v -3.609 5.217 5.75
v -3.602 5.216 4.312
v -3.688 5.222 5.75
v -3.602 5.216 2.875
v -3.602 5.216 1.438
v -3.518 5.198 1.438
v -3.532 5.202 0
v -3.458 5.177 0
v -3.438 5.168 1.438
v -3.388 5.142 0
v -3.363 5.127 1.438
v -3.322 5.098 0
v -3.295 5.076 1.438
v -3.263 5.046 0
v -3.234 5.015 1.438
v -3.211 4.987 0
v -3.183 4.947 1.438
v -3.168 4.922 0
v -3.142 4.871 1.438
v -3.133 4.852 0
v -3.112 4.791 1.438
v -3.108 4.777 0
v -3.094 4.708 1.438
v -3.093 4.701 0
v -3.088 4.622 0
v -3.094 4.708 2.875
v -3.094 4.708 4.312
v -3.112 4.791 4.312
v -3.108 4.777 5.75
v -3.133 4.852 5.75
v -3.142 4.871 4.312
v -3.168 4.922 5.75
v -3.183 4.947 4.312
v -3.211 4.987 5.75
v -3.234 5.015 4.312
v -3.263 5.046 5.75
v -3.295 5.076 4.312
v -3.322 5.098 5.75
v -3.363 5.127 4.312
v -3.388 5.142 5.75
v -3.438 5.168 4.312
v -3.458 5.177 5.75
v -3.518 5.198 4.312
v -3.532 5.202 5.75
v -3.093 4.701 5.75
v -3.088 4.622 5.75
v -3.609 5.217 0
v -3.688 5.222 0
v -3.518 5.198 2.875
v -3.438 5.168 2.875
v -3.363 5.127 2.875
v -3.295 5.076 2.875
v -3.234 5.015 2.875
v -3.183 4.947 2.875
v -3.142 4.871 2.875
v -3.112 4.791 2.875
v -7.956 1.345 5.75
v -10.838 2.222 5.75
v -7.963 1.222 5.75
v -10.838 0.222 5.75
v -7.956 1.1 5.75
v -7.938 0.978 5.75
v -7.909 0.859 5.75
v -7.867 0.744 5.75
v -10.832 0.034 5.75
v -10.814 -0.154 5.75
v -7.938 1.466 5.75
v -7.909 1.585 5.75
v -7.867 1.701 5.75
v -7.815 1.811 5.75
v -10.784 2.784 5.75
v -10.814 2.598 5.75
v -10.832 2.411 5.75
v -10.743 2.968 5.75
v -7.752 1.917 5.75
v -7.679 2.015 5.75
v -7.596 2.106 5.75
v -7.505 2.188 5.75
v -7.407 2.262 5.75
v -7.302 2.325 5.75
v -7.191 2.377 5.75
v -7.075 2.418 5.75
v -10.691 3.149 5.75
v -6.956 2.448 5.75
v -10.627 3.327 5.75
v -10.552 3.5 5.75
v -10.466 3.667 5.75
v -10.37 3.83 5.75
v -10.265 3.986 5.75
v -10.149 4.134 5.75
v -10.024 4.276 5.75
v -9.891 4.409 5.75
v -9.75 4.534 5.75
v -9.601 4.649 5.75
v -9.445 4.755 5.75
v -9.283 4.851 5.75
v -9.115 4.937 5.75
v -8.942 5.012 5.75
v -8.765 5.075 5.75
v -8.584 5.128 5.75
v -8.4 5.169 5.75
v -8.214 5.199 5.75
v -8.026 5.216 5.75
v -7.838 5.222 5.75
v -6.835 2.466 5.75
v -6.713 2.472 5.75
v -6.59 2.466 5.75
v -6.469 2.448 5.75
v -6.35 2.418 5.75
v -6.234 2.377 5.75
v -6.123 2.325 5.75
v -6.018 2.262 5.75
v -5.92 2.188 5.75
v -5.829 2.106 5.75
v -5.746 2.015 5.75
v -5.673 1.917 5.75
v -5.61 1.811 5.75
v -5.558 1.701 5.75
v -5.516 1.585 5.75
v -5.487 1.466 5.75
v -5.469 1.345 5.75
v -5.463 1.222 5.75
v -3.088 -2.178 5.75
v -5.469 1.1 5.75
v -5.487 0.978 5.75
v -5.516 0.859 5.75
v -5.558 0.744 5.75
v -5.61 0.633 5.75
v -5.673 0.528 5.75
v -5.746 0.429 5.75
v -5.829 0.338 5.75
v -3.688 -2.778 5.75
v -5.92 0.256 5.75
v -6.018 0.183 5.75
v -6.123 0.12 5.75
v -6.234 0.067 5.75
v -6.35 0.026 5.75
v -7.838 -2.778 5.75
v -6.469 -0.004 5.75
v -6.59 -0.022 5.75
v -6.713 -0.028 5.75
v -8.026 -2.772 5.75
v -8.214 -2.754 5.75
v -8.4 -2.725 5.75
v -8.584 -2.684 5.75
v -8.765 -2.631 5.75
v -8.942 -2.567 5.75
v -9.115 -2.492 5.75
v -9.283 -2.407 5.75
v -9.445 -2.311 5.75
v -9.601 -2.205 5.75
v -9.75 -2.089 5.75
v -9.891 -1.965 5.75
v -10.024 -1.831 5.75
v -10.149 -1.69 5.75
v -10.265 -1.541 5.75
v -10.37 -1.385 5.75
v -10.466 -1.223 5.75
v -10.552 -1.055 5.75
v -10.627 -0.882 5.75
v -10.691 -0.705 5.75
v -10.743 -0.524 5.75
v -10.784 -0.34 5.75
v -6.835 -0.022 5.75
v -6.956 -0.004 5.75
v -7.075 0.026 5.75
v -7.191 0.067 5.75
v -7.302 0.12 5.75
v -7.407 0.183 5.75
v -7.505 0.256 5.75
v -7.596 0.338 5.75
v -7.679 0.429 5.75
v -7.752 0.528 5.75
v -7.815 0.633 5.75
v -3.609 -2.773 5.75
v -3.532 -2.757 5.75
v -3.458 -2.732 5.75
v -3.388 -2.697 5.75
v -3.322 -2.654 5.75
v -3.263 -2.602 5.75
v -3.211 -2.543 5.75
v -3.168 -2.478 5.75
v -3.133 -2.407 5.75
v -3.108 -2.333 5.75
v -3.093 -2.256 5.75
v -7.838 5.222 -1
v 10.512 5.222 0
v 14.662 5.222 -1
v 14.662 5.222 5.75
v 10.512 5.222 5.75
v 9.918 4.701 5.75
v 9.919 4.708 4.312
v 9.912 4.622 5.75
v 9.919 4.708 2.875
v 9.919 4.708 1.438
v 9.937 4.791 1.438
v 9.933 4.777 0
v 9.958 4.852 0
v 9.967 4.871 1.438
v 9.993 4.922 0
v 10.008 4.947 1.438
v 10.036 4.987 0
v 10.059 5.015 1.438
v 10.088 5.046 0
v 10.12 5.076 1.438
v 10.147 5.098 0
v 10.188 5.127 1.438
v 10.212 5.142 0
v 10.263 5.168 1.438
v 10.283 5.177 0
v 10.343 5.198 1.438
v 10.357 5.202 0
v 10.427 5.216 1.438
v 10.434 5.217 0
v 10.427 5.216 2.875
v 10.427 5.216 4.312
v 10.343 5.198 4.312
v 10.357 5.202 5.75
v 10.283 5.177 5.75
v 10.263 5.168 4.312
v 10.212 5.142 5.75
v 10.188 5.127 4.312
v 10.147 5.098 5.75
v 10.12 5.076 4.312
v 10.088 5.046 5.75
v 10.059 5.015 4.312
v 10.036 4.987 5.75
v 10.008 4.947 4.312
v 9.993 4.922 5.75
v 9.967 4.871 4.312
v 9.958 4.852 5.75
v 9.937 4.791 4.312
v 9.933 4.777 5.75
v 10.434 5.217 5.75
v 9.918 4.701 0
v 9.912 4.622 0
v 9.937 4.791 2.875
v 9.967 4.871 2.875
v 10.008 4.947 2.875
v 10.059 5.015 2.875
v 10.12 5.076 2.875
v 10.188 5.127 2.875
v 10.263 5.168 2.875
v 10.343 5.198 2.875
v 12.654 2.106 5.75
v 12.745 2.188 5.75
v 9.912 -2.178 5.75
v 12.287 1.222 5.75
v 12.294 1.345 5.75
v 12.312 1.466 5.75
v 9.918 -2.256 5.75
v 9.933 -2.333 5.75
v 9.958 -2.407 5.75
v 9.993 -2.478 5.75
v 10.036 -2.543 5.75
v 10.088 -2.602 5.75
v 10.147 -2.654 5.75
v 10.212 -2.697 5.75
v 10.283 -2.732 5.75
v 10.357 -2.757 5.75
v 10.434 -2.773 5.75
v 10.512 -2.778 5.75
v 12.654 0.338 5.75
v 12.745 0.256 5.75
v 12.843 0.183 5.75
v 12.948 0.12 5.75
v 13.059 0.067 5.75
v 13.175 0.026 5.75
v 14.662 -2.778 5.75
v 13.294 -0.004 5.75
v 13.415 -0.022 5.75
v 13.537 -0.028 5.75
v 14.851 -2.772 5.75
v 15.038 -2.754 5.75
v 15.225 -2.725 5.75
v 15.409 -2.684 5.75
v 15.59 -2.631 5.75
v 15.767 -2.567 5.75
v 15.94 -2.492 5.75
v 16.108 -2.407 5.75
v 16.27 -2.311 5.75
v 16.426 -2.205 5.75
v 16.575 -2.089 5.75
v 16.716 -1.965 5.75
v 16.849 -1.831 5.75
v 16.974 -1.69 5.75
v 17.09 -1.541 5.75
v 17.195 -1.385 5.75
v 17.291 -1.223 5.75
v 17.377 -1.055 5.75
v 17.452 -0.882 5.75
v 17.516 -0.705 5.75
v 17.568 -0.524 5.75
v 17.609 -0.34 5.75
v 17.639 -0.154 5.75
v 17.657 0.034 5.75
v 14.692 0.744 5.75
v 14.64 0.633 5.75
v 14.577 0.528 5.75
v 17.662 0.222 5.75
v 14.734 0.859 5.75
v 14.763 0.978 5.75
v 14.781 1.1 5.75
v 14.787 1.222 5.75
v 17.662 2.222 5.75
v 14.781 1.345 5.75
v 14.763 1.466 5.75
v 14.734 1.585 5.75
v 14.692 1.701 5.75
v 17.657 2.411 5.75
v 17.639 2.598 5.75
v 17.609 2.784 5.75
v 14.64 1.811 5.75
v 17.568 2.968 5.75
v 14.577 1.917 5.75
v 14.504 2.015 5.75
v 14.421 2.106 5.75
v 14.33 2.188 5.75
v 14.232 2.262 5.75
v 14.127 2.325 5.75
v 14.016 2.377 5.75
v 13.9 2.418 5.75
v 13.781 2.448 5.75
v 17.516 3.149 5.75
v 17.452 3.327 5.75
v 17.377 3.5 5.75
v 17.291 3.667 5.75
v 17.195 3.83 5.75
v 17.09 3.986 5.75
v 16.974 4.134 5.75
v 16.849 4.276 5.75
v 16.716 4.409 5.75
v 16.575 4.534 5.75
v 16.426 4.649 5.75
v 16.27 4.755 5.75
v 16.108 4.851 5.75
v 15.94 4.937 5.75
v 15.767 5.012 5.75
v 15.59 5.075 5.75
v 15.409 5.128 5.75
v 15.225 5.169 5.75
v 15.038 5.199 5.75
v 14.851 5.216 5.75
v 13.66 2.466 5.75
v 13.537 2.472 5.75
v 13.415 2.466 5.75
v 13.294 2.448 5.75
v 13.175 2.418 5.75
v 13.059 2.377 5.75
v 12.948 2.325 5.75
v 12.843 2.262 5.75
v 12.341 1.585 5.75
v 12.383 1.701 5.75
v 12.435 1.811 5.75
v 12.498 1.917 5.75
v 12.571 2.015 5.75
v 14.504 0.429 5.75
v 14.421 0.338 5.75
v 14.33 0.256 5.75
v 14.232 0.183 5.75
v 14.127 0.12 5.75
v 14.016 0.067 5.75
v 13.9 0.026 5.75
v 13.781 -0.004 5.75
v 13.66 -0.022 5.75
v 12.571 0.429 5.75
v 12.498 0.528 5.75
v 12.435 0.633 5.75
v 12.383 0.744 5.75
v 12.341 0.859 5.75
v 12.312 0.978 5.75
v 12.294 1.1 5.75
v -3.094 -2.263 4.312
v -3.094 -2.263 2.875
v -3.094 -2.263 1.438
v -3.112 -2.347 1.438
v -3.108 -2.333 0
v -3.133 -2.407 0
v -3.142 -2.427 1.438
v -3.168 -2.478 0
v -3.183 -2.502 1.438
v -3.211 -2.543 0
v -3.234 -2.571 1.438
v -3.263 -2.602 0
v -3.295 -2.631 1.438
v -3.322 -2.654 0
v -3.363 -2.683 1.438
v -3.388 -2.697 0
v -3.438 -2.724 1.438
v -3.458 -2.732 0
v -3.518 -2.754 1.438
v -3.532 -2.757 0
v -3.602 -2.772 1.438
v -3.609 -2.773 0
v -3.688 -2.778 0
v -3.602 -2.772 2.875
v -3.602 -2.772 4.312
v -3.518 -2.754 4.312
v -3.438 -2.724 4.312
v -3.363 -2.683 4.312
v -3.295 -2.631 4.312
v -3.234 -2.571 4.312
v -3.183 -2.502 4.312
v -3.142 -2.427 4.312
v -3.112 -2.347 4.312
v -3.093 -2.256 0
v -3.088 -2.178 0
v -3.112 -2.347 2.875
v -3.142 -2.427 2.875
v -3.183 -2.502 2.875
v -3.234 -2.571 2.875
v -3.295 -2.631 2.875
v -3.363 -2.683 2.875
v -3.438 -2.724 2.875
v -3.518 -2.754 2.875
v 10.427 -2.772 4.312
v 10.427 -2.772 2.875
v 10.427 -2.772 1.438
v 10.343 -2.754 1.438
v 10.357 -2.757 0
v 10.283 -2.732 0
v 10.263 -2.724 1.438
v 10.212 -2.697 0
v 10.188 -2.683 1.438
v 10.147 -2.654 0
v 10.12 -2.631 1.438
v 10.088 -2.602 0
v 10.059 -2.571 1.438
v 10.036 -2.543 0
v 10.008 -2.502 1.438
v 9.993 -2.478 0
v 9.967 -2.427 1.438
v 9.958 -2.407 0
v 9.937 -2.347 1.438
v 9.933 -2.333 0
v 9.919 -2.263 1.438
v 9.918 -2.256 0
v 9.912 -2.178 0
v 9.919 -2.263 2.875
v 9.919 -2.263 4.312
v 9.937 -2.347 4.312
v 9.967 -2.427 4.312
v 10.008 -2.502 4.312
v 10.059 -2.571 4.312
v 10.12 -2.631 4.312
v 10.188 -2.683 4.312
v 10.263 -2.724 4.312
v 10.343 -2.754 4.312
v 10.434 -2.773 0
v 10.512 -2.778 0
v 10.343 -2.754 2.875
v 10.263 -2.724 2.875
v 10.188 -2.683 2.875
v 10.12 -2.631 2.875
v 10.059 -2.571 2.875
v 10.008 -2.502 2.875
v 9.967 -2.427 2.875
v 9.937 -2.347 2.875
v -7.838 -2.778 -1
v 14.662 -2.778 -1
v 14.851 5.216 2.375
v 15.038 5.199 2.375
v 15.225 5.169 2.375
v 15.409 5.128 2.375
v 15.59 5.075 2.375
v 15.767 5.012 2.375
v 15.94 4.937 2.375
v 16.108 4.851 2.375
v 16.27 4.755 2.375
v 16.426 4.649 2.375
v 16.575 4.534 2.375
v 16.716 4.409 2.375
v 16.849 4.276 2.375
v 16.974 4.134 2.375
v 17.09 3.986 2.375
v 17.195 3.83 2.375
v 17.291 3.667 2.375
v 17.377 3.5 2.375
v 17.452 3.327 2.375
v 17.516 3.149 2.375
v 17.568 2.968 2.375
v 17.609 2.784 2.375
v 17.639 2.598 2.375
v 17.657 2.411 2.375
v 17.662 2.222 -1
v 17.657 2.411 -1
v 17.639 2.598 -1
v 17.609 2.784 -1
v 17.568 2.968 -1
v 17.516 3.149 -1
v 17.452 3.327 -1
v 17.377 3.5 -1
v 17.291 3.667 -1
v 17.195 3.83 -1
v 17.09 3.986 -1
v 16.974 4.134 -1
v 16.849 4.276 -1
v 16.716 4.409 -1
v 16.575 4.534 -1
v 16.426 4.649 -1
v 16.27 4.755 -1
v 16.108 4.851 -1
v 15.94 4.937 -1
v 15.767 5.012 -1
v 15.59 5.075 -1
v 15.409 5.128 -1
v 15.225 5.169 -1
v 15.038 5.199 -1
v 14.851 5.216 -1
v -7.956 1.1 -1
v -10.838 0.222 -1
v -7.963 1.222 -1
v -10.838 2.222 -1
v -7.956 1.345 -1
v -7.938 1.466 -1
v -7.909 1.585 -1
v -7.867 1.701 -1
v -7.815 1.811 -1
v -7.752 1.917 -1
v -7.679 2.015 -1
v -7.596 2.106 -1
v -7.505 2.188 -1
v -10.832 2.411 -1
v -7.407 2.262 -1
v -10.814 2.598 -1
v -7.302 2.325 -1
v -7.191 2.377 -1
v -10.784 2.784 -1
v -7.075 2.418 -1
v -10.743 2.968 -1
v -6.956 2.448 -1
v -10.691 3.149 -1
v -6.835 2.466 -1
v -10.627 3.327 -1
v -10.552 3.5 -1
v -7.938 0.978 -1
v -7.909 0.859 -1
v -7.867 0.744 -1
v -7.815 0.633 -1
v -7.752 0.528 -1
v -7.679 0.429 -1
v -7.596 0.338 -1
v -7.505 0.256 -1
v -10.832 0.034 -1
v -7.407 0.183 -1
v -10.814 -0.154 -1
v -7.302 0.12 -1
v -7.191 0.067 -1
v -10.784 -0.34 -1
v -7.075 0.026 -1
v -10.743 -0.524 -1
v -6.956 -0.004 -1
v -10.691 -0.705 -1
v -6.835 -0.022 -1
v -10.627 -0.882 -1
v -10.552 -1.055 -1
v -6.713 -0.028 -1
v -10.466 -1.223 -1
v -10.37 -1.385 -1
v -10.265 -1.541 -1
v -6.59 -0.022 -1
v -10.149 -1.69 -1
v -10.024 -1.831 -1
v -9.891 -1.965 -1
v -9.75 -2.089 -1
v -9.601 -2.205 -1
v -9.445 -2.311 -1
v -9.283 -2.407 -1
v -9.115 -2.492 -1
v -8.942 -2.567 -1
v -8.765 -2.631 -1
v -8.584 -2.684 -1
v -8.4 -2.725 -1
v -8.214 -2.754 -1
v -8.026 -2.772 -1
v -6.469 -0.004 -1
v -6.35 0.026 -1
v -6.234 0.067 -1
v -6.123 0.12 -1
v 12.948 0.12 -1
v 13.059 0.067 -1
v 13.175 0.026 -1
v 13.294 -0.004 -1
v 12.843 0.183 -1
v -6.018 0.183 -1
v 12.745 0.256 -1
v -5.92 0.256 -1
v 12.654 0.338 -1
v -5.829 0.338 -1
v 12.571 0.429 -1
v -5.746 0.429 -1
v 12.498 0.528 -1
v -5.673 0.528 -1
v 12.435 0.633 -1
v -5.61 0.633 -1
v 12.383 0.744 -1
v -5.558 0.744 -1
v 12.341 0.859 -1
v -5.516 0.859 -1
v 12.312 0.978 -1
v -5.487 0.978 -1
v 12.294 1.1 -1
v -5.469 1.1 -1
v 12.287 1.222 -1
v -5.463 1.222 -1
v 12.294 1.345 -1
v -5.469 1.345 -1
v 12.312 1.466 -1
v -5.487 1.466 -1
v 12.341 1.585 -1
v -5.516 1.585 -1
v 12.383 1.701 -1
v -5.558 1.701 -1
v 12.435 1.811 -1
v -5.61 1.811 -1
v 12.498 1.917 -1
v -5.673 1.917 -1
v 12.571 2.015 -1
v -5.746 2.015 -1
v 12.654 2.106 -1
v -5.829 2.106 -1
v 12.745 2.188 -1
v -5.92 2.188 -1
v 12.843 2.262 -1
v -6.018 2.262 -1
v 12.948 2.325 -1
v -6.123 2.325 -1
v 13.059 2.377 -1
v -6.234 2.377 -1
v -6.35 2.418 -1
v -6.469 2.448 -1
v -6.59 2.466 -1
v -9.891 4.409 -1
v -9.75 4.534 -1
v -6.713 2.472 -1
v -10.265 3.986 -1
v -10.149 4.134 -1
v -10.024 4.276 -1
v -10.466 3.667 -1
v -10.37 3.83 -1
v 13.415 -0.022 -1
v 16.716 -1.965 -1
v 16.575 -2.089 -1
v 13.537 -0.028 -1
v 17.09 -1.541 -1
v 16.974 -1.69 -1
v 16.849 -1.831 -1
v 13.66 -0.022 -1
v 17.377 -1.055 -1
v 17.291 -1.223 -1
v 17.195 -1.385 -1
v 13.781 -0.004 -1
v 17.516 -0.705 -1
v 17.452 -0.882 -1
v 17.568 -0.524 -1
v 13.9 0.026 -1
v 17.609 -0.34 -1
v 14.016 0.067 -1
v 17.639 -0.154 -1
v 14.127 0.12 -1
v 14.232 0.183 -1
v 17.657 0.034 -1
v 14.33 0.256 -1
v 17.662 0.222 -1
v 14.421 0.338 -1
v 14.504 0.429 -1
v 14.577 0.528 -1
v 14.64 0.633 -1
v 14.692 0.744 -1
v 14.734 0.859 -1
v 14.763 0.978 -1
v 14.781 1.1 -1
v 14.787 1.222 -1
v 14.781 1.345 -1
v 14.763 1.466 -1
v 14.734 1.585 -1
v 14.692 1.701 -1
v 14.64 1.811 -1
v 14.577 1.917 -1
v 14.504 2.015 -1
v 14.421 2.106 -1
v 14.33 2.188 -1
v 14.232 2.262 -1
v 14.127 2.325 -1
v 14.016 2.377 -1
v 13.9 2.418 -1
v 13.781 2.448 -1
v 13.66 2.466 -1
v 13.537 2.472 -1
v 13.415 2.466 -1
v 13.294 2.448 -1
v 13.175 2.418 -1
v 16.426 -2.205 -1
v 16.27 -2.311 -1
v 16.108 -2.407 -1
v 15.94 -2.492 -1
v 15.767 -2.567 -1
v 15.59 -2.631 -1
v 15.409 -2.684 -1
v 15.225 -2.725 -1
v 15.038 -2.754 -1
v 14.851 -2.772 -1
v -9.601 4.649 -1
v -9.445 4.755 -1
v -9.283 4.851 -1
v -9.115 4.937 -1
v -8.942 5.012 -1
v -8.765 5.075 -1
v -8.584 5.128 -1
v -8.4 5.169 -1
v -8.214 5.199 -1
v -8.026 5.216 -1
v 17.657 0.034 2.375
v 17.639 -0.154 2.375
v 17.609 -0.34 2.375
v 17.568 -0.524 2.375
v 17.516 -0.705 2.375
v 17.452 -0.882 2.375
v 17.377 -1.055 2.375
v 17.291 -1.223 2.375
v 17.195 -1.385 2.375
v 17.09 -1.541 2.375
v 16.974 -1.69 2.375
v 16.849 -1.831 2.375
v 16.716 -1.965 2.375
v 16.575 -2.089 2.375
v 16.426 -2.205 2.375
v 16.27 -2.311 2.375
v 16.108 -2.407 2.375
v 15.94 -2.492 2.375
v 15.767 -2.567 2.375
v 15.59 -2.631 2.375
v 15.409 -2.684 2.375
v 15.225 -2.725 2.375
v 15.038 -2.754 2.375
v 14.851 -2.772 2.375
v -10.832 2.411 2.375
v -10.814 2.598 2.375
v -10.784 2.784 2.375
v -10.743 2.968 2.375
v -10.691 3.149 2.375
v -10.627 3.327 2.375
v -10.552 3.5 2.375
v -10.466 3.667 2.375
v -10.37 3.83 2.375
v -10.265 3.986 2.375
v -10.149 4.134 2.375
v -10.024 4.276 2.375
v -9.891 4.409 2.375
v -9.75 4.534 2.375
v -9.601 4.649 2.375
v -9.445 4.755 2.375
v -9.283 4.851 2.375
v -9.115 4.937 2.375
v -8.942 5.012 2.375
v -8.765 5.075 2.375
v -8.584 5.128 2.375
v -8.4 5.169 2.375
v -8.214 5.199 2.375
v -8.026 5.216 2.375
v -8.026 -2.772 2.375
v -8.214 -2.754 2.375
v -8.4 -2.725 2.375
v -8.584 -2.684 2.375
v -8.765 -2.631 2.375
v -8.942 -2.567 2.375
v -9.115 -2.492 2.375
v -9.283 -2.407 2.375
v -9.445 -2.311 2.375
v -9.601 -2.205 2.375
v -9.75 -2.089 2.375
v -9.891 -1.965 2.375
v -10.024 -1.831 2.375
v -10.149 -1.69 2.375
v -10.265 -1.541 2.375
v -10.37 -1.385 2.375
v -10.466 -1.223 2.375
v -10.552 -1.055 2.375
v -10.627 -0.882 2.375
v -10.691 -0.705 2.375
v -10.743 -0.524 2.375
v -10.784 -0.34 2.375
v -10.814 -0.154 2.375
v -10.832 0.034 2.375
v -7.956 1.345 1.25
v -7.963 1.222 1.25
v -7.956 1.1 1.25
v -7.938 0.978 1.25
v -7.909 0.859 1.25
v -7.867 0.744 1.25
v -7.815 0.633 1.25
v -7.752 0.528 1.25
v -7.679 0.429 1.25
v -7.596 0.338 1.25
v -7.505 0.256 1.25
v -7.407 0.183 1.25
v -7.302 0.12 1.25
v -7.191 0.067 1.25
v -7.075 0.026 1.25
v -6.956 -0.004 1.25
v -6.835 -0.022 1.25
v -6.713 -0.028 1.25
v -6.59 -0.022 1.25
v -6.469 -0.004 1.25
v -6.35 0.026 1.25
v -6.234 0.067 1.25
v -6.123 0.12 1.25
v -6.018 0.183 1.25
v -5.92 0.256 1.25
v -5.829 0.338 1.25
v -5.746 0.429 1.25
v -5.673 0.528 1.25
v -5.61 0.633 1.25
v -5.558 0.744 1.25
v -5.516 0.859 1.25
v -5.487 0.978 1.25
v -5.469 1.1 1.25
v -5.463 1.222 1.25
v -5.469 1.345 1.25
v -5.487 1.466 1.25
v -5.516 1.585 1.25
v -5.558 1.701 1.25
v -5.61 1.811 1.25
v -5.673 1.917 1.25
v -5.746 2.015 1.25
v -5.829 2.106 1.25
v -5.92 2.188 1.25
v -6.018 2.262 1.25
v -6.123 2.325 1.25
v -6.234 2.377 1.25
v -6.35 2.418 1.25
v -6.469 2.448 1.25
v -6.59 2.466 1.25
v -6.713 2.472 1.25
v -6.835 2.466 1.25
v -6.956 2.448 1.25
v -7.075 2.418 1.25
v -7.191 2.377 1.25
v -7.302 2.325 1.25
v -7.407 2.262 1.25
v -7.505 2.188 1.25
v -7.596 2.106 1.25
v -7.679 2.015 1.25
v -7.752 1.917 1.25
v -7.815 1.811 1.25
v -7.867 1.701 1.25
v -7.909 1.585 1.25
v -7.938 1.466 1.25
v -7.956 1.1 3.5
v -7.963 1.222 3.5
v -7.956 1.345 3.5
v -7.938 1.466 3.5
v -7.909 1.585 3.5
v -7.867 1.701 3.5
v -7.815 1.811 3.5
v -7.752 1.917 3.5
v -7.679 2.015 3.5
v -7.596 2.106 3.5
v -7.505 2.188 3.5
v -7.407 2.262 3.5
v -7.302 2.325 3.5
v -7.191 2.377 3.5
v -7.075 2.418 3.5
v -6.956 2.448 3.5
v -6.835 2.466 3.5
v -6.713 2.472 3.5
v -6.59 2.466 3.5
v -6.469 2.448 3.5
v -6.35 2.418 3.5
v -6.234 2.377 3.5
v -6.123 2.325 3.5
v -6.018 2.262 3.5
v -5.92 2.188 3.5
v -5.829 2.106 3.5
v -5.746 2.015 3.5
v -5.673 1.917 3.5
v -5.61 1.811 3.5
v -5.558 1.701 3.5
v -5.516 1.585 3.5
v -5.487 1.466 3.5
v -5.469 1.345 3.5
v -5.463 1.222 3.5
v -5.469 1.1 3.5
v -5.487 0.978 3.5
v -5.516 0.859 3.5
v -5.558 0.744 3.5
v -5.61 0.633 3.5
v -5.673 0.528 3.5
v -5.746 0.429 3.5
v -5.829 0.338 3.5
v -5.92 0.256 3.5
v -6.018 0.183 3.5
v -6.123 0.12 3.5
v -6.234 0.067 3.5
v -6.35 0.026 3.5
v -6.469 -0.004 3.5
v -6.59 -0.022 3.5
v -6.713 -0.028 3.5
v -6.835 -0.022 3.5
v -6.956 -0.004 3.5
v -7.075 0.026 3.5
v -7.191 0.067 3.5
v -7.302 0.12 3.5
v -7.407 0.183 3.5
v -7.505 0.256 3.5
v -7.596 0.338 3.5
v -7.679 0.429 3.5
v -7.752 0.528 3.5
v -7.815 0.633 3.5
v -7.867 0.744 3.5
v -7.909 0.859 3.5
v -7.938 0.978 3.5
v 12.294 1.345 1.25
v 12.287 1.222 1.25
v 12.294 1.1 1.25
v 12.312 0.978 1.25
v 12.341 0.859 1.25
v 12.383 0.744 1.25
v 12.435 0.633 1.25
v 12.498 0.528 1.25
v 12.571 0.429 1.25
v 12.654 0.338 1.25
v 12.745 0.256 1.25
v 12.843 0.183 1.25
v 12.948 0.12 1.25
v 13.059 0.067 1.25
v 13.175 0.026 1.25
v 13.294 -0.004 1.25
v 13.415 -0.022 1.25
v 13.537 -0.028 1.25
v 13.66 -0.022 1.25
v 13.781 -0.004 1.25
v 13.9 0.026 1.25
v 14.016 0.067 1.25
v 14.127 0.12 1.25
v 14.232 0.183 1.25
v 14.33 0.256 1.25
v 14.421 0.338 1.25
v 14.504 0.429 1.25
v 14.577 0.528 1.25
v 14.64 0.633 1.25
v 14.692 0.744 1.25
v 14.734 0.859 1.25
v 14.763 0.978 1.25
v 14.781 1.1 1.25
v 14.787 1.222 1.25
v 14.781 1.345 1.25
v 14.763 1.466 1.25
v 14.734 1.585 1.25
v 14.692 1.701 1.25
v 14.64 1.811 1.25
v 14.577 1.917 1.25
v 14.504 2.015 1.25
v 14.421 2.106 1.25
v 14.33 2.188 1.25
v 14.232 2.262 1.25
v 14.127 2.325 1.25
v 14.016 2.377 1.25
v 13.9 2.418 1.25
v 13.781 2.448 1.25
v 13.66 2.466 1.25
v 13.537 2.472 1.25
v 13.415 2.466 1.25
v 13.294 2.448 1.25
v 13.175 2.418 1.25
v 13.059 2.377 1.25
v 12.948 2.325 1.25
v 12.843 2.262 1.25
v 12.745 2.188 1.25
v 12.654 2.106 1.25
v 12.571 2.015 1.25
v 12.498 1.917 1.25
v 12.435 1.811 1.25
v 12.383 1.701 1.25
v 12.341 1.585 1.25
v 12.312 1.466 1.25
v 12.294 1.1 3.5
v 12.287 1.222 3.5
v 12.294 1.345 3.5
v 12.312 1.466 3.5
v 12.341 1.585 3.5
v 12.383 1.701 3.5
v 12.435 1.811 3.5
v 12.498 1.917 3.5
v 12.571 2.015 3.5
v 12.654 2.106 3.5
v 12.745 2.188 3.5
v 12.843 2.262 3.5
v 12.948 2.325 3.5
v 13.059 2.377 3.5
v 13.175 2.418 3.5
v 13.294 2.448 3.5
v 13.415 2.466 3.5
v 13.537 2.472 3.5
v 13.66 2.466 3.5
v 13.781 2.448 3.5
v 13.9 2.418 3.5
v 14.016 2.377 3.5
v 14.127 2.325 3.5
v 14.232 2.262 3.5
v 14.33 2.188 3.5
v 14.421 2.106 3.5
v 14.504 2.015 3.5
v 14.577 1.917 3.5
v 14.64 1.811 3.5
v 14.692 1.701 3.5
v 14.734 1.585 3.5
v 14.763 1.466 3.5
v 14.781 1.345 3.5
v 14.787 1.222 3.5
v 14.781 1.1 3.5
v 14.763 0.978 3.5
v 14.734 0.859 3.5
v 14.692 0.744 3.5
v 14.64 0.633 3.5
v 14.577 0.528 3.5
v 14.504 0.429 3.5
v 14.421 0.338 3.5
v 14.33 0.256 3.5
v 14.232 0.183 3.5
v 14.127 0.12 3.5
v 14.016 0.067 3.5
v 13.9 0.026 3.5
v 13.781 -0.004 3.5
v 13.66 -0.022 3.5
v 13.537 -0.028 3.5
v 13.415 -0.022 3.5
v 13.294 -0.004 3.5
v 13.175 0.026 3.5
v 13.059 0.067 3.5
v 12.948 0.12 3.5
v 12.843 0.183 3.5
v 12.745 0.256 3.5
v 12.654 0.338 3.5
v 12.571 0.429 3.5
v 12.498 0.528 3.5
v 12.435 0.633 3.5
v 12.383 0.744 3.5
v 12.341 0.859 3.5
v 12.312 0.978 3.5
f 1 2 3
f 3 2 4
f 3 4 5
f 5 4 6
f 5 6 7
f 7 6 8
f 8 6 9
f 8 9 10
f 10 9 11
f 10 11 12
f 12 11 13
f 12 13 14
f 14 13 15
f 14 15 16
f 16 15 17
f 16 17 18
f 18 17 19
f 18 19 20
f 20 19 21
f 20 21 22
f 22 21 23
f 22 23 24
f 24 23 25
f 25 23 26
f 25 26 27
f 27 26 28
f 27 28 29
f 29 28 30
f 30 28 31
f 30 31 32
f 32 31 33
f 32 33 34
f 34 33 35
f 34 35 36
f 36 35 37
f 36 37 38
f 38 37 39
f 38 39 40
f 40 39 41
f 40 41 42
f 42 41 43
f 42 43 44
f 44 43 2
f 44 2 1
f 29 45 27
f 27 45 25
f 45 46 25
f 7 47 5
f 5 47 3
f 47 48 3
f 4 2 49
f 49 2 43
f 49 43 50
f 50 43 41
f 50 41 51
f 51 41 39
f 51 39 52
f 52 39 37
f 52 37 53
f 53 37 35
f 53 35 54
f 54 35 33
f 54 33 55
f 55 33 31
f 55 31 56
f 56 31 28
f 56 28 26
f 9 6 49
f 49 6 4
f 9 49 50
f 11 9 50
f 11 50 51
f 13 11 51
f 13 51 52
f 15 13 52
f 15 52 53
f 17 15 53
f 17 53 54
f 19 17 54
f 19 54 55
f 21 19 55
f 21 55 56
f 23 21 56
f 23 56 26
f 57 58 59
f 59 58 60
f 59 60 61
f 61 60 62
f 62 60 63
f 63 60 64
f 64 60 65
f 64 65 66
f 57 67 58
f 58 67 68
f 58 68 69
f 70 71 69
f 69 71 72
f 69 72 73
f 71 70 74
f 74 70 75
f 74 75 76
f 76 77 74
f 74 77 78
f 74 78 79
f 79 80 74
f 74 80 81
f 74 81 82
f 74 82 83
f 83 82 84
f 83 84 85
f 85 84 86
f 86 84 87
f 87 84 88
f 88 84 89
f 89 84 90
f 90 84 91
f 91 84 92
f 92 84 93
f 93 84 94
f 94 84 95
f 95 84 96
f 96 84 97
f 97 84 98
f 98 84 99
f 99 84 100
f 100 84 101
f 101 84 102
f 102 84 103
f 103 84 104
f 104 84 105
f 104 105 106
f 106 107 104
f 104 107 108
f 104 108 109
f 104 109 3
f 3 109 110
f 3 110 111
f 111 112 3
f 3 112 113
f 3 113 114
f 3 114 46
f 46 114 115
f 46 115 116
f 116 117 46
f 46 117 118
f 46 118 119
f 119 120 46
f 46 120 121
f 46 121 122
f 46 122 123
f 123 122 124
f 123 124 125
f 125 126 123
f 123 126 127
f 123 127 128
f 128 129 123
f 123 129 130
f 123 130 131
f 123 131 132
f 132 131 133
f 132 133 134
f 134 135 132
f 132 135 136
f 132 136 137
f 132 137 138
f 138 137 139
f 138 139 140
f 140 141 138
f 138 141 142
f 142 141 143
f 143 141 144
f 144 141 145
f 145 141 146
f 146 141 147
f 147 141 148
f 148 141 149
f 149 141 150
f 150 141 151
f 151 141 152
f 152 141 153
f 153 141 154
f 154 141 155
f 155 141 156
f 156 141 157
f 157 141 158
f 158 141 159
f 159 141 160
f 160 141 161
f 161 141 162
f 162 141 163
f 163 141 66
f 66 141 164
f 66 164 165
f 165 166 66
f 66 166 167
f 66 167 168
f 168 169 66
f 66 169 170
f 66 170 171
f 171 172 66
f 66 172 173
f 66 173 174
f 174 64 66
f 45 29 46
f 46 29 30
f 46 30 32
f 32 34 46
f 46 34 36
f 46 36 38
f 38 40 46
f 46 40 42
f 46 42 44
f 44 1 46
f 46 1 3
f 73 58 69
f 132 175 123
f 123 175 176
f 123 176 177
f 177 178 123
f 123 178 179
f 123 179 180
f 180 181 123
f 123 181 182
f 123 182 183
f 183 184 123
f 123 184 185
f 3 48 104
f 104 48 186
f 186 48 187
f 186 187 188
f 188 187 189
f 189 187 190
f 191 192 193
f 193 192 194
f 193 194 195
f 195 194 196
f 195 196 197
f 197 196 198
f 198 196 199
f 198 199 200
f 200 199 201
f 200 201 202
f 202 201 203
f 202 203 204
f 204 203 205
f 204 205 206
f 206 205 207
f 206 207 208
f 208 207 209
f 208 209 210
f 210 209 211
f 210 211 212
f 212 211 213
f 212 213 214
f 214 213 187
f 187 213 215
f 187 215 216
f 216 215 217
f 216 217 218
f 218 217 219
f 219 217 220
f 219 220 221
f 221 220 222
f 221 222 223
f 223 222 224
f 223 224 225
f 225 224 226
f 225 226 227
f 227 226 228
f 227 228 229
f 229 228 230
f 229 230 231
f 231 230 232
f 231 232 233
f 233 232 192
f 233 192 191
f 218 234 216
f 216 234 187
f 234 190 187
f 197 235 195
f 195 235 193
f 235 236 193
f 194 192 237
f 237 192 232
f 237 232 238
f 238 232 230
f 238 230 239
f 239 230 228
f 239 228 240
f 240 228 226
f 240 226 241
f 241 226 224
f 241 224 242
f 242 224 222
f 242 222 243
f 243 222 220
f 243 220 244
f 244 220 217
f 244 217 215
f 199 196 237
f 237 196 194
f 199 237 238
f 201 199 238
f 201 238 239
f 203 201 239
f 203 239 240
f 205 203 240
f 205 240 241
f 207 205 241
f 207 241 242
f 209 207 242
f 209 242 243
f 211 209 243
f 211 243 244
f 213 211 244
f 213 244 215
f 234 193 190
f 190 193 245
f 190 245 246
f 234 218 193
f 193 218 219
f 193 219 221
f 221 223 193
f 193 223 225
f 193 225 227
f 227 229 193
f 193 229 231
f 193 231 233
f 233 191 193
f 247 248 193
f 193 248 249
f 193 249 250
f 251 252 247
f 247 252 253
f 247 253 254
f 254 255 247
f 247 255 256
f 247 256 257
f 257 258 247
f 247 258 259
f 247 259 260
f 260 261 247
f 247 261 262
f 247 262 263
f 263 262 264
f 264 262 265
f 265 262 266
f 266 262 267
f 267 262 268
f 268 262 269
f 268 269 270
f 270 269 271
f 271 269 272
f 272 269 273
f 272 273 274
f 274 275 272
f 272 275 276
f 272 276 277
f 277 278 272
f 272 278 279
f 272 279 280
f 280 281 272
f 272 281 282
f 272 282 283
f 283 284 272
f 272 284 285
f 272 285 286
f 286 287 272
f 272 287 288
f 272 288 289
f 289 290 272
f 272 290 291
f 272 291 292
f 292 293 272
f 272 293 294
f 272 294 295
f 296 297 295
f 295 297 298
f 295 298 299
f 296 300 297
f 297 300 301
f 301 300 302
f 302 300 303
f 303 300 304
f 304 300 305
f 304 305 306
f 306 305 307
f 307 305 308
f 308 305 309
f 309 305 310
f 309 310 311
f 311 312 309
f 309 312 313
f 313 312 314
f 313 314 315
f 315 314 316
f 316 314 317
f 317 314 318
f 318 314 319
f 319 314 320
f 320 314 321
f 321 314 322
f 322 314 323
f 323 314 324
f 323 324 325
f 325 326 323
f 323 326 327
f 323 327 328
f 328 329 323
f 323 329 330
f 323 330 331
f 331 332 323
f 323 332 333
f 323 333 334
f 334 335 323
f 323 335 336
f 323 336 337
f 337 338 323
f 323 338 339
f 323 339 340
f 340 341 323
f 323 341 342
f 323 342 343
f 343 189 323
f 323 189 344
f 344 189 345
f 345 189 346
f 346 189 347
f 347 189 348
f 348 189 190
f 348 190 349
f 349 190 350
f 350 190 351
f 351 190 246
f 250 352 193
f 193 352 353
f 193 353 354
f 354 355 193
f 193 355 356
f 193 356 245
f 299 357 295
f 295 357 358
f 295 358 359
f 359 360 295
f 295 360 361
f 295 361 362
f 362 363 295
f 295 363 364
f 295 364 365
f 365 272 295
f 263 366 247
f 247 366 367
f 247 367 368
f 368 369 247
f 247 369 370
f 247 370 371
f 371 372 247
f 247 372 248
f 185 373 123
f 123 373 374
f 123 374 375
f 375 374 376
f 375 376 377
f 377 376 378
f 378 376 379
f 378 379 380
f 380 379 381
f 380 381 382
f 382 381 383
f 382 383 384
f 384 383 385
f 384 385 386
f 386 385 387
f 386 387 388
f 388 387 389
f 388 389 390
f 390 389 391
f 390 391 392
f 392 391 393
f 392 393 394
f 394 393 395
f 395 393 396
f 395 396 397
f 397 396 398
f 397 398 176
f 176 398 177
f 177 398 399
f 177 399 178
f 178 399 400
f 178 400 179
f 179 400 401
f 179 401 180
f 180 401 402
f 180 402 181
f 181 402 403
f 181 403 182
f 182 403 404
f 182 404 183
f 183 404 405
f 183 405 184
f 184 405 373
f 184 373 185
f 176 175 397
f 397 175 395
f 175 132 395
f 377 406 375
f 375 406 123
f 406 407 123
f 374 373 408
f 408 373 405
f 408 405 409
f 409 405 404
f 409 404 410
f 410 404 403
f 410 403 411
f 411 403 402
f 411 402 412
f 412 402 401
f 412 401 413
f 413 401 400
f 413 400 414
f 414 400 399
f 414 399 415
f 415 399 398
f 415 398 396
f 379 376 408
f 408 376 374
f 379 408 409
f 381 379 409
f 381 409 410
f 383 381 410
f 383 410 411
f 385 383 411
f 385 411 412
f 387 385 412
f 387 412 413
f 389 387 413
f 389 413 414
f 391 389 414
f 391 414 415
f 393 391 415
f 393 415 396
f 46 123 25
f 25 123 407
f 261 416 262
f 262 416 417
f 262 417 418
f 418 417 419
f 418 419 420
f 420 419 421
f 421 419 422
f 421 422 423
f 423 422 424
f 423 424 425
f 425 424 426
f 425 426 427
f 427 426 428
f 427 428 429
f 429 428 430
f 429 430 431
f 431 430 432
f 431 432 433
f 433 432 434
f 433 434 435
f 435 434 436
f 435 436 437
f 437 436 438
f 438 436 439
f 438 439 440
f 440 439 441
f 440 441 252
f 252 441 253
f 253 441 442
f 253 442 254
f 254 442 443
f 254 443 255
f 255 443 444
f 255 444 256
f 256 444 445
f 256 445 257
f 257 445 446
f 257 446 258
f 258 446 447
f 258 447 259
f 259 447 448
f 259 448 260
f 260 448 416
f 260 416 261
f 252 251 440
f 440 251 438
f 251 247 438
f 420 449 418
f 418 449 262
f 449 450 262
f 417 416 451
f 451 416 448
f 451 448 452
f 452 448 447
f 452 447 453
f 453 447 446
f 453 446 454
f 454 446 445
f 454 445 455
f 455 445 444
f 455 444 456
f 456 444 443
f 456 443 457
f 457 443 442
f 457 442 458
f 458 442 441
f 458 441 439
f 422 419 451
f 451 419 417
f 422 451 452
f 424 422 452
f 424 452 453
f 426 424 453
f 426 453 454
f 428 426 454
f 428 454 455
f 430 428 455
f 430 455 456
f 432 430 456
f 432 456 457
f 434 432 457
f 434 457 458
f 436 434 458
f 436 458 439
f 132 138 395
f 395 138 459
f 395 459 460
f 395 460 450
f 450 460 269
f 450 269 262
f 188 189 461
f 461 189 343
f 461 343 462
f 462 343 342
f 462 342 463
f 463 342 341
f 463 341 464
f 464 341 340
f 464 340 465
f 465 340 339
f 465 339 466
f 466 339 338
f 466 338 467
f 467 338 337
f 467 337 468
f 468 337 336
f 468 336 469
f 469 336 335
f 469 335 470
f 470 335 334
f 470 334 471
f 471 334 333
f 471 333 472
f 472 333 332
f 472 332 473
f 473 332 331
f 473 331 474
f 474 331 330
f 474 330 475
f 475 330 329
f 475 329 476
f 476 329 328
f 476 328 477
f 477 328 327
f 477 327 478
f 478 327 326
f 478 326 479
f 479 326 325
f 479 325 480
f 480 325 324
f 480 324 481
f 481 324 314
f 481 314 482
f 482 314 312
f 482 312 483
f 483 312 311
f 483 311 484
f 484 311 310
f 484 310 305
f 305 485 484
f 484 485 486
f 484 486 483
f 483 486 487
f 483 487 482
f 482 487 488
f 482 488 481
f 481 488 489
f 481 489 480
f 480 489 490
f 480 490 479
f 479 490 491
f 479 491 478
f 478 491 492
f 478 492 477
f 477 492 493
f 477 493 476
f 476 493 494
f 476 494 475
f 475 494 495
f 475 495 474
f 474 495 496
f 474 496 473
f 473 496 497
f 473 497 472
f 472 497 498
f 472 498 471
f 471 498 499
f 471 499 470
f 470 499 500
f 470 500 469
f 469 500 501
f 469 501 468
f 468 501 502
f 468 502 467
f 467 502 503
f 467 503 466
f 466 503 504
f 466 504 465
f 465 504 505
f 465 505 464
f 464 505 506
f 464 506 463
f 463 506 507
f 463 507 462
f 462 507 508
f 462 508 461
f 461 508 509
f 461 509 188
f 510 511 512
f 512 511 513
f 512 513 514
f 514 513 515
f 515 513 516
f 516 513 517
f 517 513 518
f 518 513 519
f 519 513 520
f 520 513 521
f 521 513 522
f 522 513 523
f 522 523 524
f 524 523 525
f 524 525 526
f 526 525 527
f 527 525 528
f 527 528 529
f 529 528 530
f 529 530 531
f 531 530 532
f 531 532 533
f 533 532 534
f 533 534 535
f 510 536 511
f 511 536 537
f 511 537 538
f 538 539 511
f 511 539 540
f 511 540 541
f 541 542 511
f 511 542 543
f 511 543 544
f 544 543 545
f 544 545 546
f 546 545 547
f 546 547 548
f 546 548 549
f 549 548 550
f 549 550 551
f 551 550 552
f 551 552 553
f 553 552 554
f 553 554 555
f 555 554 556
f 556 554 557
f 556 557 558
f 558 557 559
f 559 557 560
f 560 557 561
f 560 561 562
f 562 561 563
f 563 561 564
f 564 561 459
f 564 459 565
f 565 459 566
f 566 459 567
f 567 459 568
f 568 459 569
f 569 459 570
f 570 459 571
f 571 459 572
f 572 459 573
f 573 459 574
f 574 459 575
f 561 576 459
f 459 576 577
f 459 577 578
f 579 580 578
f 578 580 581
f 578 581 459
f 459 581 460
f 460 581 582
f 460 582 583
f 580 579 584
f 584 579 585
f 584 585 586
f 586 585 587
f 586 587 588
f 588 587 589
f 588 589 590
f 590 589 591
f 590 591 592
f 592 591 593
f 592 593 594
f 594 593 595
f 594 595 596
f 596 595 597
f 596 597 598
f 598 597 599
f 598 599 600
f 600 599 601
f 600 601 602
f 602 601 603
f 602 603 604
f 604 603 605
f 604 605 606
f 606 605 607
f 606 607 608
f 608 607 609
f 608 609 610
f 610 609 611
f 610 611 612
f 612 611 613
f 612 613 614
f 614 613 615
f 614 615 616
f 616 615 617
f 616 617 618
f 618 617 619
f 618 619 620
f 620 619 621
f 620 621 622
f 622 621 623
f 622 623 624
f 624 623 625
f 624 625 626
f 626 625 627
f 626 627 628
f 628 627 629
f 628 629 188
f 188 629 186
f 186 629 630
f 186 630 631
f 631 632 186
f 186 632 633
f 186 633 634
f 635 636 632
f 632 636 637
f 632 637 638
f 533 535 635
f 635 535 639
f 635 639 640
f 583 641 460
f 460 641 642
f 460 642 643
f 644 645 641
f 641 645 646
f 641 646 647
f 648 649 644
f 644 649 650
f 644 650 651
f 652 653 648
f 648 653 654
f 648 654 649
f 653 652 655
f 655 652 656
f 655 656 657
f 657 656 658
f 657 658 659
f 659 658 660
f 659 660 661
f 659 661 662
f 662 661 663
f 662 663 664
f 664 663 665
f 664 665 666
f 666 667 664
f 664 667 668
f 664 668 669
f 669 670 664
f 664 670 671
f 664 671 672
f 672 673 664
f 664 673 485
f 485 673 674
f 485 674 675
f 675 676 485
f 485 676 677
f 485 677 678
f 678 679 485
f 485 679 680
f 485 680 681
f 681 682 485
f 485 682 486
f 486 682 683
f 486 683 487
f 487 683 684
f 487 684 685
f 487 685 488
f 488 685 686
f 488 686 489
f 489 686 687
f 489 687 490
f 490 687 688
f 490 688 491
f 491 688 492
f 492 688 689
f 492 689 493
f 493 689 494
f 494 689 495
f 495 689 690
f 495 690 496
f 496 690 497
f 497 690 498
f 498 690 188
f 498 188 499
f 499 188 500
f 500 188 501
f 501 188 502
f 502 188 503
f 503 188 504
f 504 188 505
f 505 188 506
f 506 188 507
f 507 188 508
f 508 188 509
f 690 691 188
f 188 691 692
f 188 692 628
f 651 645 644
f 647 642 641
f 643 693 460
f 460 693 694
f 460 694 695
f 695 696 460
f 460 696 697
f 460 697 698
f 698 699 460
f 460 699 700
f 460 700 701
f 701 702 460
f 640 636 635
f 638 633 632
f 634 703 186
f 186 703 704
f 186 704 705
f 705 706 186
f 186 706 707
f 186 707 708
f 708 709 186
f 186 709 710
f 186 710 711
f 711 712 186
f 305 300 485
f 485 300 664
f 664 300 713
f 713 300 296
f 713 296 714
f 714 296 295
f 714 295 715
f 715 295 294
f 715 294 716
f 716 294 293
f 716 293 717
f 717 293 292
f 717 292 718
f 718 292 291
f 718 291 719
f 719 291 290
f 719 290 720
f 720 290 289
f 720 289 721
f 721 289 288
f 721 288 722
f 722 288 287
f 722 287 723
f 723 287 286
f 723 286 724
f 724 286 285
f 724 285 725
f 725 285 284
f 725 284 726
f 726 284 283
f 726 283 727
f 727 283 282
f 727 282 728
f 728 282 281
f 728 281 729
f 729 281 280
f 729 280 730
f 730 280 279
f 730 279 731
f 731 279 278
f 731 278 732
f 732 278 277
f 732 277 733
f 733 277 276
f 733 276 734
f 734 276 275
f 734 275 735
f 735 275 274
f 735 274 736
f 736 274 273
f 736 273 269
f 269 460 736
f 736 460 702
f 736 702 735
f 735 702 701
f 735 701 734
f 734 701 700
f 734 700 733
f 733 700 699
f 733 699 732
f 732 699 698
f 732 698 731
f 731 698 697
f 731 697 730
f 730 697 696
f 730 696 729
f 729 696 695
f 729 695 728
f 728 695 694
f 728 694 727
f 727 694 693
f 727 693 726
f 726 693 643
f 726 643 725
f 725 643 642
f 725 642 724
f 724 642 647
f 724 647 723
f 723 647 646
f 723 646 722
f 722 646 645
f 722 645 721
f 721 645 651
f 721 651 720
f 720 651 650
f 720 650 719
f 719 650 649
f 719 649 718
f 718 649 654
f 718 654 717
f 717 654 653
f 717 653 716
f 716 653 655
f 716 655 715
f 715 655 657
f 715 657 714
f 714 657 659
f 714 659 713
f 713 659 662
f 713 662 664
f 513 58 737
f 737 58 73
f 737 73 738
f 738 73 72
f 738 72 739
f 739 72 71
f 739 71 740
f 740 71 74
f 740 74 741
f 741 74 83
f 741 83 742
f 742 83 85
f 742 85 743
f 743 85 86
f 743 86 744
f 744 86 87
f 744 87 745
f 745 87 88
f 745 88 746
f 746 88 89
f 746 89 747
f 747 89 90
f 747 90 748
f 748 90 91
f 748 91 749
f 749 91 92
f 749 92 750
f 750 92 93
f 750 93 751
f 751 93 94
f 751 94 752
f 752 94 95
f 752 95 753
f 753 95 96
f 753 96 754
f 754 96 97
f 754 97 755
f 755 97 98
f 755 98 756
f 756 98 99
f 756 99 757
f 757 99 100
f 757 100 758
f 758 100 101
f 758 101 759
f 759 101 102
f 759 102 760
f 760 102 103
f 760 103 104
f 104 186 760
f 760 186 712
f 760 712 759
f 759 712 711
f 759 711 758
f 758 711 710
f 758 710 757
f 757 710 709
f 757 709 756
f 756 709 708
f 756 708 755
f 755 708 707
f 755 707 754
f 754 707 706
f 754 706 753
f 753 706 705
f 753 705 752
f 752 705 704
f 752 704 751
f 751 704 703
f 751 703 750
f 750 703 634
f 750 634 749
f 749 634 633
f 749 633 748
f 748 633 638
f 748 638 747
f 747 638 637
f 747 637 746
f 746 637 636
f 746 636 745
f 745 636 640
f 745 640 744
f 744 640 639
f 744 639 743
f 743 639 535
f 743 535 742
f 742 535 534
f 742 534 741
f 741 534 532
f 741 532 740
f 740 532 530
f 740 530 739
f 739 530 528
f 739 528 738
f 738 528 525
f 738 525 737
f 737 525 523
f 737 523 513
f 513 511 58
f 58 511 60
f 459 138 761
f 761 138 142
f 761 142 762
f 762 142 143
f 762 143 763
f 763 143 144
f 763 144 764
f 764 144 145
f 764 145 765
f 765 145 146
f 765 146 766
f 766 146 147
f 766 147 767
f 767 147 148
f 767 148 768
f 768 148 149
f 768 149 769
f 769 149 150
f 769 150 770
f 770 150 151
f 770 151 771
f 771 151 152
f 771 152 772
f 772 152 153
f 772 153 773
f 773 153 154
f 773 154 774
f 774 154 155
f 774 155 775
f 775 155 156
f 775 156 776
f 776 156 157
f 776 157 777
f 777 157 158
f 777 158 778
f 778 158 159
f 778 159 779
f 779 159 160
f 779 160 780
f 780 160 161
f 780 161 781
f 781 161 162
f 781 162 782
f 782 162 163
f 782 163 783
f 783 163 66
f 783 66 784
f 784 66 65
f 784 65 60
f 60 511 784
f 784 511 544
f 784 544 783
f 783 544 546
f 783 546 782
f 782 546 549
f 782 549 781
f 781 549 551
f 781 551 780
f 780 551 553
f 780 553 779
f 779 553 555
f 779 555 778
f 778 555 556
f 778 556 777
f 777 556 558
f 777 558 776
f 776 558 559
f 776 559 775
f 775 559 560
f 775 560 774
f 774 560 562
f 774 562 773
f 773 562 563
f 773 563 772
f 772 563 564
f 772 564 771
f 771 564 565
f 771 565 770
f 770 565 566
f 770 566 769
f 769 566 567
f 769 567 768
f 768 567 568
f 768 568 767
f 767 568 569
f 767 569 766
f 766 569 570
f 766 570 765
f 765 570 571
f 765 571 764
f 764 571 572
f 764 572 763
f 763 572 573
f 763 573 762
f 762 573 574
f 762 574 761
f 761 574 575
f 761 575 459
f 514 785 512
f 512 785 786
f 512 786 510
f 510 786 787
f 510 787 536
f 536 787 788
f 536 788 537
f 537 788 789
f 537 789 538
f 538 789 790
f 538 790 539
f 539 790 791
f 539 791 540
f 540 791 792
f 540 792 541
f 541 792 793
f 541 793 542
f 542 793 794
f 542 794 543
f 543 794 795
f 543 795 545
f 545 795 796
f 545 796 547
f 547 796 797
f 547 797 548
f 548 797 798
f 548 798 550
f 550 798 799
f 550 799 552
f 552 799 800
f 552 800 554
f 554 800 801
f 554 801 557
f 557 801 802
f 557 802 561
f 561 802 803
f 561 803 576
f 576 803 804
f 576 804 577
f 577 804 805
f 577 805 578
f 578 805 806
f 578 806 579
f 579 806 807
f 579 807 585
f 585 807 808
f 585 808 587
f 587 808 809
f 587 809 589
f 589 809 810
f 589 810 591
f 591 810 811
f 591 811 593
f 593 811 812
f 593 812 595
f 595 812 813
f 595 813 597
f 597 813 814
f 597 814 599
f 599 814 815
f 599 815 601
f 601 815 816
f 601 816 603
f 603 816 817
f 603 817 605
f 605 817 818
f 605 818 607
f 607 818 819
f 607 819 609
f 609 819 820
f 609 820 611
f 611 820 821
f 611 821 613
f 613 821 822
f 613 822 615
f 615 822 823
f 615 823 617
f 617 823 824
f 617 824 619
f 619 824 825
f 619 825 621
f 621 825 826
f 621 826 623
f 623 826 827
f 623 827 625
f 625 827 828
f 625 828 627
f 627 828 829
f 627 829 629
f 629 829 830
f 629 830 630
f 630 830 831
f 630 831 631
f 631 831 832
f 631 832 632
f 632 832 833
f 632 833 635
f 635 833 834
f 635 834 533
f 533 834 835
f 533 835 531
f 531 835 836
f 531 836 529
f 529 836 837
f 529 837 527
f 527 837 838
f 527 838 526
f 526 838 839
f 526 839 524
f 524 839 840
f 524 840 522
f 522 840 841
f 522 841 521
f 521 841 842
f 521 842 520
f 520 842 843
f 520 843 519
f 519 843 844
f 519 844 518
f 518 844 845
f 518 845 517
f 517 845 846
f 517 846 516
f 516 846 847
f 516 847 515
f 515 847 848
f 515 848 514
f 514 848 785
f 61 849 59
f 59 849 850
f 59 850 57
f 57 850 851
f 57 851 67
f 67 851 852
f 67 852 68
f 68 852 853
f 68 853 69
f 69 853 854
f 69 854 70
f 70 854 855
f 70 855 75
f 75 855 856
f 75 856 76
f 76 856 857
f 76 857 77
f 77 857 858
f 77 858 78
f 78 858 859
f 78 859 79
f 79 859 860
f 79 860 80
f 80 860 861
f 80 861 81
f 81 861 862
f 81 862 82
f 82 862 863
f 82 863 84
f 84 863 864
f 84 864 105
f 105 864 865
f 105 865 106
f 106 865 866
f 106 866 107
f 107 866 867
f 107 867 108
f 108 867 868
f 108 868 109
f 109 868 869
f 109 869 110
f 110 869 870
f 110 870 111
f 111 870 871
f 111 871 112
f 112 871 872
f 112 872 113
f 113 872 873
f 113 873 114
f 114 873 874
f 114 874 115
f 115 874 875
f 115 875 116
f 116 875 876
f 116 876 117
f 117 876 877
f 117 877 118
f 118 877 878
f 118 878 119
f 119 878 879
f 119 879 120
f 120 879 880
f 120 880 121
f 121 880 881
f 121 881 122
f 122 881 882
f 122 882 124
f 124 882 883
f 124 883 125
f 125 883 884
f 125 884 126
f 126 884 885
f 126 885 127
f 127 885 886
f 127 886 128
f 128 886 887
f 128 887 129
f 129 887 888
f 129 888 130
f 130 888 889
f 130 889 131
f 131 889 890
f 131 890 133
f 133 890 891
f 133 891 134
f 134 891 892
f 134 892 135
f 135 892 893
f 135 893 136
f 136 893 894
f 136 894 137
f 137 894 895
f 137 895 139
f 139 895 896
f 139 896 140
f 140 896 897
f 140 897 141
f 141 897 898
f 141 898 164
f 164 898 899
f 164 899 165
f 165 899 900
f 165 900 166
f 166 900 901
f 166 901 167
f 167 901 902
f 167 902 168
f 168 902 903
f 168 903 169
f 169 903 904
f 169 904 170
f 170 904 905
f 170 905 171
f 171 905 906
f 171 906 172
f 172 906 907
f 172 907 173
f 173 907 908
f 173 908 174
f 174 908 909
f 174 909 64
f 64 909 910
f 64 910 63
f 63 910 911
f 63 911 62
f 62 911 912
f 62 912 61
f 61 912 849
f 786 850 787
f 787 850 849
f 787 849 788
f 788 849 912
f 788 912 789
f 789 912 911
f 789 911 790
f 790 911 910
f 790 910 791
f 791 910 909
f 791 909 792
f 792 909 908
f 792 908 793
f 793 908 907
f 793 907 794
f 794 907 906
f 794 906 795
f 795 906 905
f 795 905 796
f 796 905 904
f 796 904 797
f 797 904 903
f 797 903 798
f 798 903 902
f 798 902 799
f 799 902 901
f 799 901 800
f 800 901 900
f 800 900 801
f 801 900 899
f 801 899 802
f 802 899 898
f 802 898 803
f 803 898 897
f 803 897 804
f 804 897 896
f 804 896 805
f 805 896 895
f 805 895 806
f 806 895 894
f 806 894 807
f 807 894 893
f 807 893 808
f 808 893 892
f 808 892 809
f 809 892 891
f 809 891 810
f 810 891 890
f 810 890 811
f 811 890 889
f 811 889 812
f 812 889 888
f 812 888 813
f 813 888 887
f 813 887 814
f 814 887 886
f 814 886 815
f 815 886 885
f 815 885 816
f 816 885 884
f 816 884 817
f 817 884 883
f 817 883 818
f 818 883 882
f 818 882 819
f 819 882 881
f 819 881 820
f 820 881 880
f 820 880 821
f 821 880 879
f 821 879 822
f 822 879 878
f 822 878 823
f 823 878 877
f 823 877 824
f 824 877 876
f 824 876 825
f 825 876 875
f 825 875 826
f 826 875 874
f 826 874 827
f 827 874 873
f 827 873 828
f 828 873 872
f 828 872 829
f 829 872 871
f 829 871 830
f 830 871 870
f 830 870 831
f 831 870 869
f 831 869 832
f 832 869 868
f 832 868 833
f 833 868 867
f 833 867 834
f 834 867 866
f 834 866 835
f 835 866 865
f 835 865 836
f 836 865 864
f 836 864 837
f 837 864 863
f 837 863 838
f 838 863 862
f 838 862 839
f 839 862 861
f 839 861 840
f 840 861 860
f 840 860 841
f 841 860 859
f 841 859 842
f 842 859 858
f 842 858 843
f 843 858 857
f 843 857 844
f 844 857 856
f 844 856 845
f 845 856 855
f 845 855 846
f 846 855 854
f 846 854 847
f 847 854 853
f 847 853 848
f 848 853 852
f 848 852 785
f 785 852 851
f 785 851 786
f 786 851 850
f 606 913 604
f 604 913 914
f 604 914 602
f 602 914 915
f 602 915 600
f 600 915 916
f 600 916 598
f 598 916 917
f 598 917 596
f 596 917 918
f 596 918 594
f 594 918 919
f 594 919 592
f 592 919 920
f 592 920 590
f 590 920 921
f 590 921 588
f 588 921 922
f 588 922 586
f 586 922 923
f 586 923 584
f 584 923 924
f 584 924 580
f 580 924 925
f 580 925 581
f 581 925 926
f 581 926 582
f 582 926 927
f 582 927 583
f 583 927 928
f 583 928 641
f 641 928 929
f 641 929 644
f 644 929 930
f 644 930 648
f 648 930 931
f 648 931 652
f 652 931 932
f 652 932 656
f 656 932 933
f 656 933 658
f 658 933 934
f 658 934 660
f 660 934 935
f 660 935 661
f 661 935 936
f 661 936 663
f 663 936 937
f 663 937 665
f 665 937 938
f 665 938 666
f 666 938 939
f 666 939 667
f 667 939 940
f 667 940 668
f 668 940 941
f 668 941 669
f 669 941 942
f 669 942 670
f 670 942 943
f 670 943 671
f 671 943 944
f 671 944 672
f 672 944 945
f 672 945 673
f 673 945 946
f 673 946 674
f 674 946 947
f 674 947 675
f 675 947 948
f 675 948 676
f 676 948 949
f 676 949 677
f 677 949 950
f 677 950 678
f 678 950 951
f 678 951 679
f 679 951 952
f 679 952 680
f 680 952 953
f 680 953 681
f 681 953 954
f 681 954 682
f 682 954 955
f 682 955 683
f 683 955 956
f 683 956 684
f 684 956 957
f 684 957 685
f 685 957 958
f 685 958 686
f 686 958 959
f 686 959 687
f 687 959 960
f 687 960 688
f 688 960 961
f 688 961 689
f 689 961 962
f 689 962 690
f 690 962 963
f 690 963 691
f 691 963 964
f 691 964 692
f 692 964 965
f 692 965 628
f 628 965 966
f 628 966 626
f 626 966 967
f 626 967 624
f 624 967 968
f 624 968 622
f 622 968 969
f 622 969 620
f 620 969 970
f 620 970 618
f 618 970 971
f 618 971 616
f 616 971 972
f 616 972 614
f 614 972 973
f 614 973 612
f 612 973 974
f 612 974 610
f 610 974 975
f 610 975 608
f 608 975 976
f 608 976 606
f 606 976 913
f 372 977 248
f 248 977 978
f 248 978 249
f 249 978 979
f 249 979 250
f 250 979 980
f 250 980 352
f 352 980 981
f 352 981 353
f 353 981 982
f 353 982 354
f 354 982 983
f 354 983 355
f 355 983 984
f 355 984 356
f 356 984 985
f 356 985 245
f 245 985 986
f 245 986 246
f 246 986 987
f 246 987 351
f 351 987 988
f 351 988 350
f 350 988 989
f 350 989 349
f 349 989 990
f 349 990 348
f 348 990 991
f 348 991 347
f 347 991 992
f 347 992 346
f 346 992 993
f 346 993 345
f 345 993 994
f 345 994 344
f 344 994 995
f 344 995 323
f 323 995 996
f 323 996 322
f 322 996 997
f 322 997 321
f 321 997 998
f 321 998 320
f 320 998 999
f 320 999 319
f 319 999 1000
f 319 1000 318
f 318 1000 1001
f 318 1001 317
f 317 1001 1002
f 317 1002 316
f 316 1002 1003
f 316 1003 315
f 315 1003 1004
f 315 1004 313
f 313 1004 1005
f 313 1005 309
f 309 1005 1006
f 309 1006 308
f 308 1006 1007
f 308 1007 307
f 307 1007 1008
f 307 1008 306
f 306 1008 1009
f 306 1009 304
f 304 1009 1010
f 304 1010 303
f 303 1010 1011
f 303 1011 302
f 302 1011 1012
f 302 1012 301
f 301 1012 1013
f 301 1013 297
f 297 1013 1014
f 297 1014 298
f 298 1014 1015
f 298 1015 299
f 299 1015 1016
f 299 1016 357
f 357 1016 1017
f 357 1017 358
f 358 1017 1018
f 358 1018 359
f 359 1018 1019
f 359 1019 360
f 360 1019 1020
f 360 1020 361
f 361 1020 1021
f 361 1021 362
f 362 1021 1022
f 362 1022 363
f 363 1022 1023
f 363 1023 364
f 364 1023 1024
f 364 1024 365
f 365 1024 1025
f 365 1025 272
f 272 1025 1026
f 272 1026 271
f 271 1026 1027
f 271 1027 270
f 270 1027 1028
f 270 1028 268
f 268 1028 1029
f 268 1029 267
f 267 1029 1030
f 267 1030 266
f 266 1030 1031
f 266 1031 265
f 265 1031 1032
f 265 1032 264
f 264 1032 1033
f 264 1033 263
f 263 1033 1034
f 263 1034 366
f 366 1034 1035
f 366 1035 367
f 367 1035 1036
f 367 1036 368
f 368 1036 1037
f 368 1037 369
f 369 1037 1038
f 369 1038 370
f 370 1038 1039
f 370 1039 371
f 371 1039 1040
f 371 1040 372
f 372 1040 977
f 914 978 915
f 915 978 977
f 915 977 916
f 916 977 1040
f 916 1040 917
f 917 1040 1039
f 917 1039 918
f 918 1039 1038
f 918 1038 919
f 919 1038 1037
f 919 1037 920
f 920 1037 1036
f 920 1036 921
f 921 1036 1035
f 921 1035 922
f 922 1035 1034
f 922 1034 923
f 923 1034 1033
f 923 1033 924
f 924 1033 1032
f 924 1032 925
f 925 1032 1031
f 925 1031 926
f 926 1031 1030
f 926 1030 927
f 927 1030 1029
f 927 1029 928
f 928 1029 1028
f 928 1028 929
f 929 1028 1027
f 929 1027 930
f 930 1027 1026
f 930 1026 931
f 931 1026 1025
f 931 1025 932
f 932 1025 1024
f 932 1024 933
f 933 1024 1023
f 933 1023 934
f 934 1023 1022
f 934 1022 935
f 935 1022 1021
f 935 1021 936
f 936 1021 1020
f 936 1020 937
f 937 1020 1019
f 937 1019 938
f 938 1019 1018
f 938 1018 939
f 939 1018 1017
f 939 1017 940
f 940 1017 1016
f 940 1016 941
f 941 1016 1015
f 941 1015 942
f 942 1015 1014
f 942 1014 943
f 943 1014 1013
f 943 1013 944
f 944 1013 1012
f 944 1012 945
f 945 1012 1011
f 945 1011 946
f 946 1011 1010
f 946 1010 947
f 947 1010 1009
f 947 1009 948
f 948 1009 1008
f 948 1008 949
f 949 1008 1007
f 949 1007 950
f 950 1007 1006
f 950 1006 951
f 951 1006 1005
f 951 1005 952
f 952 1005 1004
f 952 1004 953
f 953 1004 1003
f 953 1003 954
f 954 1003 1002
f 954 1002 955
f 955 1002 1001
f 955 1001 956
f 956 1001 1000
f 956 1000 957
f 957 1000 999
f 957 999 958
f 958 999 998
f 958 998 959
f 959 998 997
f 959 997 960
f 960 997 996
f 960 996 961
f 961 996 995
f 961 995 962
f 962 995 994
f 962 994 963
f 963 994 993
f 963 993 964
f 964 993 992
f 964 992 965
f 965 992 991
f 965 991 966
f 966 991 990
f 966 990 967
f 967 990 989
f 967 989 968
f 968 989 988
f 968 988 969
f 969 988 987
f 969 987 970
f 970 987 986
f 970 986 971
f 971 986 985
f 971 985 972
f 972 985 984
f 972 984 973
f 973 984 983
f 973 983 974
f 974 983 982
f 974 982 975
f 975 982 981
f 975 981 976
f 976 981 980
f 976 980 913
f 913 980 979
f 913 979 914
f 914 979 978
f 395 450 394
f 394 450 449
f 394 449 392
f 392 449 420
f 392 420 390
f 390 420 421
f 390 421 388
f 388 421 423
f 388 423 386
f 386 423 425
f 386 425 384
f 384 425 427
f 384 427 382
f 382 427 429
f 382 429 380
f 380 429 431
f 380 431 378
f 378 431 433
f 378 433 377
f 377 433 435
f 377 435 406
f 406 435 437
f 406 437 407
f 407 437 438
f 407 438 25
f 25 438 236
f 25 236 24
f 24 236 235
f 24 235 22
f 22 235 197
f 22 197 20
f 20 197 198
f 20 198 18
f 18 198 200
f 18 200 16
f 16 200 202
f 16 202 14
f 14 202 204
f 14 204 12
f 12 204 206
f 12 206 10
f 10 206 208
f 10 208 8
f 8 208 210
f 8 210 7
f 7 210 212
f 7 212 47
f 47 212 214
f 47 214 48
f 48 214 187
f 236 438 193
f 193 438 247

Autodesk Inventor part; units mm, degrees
ref_plane "YZ Plane" through (0, 0, 0) normal (1, 0, 0) x (0, 1, 0)
ref_plane "XZ Plane" through (0, 0, 0) normal (0, 1, 0) x (-1, 0, 0)
ref_plane "XY Plane" through (0, 0, 0) normal (0, 0, 1) x (1, 0, 0)
sketch "Sketch1" plane through (0, 0, 0) normal (0, 0, 1) x (1, 0, 0)
  line L0 (-3.0875, 5.2222) -> (9.9125, 5.2222)
  line L1 (9.9125, 5.2222) -> (9.9125, -2.7778)
  line L2 (9.9125, -2.7778) -> (-3.0875, -2.7778)
  line L3 (-3.0875, -2.7778) -> (-3.0875, 5.2222)
  line L4 (-3.0875, 5.2222) -> (-10.8375, 5.2222)
  line L5 (-10.8375, 5.2222) -> (-10.8375, -2.7778)
  line L6 (-10.8375, -2.7778) -> (-3.0875, -2.7778)
  line L7 (9.9125, -2.7778) -> (17.6625, -2.7778)
  line L8 (17.6625, -2.7778) -> (17.6625, 5.2222)
  line L9 (17.6625, 5.2222) -> (9.9125, 5.2222)
  point P0 (0, 0)
  point P1 (-6.7125, 1.2222)
  point P2 (13.5375, 1.2222)
  dimension "d0" = 13
  dimension "d1" = 8
  dimension "d2" = 7.75
  dimension "d3" = 7.75
  dimension "d6" = 4
  dimension "d7" = 4
  dimension "d22" = 20.25
  dimension "d23" = 28.5
  dimension "d24" = 4.125
extrude "Extrusion1" add sketch "Sketch1" along normal blind 5.75 contours L3 L6 L5 L4 | L9 L8 L7 L1
extrude "Extrusion2" add sketch "Sketch1" against normal blind 1
hole "Hole1" at (-6.7125, 1.2222, 0) at (13.5375, 1.2222, 0) direction (0, 0, 1) diameter 2.5 end through all both
fillet "Fillet1" radius 3 4 edges at (-10.8375, -2.7778, 2.375) (-10.8375, 5.2222, 2.375) (17.6625, -2.7778, 2.375) (17.6625, 5.2222, 2.375)
fillet "Fillet2" radius 0.6 4 edges at (9.9125, -2.7778, 2.875) (-3.0875, -2.7778, 2.875) (9.9125, 5.2222, 2.875) (-3.0875, 5.2222, 2.875)
equation "\"d3\" = d2"
equation "\"d6\" = 0.5 * d1"
equation "\"d7\" = d6"
equation "\"d24\" = -0.5 * d22 + 0.5 * d23"
properties part number "3DP_PLA_X_axis_endstop_mount" material "ABS Plastic"
